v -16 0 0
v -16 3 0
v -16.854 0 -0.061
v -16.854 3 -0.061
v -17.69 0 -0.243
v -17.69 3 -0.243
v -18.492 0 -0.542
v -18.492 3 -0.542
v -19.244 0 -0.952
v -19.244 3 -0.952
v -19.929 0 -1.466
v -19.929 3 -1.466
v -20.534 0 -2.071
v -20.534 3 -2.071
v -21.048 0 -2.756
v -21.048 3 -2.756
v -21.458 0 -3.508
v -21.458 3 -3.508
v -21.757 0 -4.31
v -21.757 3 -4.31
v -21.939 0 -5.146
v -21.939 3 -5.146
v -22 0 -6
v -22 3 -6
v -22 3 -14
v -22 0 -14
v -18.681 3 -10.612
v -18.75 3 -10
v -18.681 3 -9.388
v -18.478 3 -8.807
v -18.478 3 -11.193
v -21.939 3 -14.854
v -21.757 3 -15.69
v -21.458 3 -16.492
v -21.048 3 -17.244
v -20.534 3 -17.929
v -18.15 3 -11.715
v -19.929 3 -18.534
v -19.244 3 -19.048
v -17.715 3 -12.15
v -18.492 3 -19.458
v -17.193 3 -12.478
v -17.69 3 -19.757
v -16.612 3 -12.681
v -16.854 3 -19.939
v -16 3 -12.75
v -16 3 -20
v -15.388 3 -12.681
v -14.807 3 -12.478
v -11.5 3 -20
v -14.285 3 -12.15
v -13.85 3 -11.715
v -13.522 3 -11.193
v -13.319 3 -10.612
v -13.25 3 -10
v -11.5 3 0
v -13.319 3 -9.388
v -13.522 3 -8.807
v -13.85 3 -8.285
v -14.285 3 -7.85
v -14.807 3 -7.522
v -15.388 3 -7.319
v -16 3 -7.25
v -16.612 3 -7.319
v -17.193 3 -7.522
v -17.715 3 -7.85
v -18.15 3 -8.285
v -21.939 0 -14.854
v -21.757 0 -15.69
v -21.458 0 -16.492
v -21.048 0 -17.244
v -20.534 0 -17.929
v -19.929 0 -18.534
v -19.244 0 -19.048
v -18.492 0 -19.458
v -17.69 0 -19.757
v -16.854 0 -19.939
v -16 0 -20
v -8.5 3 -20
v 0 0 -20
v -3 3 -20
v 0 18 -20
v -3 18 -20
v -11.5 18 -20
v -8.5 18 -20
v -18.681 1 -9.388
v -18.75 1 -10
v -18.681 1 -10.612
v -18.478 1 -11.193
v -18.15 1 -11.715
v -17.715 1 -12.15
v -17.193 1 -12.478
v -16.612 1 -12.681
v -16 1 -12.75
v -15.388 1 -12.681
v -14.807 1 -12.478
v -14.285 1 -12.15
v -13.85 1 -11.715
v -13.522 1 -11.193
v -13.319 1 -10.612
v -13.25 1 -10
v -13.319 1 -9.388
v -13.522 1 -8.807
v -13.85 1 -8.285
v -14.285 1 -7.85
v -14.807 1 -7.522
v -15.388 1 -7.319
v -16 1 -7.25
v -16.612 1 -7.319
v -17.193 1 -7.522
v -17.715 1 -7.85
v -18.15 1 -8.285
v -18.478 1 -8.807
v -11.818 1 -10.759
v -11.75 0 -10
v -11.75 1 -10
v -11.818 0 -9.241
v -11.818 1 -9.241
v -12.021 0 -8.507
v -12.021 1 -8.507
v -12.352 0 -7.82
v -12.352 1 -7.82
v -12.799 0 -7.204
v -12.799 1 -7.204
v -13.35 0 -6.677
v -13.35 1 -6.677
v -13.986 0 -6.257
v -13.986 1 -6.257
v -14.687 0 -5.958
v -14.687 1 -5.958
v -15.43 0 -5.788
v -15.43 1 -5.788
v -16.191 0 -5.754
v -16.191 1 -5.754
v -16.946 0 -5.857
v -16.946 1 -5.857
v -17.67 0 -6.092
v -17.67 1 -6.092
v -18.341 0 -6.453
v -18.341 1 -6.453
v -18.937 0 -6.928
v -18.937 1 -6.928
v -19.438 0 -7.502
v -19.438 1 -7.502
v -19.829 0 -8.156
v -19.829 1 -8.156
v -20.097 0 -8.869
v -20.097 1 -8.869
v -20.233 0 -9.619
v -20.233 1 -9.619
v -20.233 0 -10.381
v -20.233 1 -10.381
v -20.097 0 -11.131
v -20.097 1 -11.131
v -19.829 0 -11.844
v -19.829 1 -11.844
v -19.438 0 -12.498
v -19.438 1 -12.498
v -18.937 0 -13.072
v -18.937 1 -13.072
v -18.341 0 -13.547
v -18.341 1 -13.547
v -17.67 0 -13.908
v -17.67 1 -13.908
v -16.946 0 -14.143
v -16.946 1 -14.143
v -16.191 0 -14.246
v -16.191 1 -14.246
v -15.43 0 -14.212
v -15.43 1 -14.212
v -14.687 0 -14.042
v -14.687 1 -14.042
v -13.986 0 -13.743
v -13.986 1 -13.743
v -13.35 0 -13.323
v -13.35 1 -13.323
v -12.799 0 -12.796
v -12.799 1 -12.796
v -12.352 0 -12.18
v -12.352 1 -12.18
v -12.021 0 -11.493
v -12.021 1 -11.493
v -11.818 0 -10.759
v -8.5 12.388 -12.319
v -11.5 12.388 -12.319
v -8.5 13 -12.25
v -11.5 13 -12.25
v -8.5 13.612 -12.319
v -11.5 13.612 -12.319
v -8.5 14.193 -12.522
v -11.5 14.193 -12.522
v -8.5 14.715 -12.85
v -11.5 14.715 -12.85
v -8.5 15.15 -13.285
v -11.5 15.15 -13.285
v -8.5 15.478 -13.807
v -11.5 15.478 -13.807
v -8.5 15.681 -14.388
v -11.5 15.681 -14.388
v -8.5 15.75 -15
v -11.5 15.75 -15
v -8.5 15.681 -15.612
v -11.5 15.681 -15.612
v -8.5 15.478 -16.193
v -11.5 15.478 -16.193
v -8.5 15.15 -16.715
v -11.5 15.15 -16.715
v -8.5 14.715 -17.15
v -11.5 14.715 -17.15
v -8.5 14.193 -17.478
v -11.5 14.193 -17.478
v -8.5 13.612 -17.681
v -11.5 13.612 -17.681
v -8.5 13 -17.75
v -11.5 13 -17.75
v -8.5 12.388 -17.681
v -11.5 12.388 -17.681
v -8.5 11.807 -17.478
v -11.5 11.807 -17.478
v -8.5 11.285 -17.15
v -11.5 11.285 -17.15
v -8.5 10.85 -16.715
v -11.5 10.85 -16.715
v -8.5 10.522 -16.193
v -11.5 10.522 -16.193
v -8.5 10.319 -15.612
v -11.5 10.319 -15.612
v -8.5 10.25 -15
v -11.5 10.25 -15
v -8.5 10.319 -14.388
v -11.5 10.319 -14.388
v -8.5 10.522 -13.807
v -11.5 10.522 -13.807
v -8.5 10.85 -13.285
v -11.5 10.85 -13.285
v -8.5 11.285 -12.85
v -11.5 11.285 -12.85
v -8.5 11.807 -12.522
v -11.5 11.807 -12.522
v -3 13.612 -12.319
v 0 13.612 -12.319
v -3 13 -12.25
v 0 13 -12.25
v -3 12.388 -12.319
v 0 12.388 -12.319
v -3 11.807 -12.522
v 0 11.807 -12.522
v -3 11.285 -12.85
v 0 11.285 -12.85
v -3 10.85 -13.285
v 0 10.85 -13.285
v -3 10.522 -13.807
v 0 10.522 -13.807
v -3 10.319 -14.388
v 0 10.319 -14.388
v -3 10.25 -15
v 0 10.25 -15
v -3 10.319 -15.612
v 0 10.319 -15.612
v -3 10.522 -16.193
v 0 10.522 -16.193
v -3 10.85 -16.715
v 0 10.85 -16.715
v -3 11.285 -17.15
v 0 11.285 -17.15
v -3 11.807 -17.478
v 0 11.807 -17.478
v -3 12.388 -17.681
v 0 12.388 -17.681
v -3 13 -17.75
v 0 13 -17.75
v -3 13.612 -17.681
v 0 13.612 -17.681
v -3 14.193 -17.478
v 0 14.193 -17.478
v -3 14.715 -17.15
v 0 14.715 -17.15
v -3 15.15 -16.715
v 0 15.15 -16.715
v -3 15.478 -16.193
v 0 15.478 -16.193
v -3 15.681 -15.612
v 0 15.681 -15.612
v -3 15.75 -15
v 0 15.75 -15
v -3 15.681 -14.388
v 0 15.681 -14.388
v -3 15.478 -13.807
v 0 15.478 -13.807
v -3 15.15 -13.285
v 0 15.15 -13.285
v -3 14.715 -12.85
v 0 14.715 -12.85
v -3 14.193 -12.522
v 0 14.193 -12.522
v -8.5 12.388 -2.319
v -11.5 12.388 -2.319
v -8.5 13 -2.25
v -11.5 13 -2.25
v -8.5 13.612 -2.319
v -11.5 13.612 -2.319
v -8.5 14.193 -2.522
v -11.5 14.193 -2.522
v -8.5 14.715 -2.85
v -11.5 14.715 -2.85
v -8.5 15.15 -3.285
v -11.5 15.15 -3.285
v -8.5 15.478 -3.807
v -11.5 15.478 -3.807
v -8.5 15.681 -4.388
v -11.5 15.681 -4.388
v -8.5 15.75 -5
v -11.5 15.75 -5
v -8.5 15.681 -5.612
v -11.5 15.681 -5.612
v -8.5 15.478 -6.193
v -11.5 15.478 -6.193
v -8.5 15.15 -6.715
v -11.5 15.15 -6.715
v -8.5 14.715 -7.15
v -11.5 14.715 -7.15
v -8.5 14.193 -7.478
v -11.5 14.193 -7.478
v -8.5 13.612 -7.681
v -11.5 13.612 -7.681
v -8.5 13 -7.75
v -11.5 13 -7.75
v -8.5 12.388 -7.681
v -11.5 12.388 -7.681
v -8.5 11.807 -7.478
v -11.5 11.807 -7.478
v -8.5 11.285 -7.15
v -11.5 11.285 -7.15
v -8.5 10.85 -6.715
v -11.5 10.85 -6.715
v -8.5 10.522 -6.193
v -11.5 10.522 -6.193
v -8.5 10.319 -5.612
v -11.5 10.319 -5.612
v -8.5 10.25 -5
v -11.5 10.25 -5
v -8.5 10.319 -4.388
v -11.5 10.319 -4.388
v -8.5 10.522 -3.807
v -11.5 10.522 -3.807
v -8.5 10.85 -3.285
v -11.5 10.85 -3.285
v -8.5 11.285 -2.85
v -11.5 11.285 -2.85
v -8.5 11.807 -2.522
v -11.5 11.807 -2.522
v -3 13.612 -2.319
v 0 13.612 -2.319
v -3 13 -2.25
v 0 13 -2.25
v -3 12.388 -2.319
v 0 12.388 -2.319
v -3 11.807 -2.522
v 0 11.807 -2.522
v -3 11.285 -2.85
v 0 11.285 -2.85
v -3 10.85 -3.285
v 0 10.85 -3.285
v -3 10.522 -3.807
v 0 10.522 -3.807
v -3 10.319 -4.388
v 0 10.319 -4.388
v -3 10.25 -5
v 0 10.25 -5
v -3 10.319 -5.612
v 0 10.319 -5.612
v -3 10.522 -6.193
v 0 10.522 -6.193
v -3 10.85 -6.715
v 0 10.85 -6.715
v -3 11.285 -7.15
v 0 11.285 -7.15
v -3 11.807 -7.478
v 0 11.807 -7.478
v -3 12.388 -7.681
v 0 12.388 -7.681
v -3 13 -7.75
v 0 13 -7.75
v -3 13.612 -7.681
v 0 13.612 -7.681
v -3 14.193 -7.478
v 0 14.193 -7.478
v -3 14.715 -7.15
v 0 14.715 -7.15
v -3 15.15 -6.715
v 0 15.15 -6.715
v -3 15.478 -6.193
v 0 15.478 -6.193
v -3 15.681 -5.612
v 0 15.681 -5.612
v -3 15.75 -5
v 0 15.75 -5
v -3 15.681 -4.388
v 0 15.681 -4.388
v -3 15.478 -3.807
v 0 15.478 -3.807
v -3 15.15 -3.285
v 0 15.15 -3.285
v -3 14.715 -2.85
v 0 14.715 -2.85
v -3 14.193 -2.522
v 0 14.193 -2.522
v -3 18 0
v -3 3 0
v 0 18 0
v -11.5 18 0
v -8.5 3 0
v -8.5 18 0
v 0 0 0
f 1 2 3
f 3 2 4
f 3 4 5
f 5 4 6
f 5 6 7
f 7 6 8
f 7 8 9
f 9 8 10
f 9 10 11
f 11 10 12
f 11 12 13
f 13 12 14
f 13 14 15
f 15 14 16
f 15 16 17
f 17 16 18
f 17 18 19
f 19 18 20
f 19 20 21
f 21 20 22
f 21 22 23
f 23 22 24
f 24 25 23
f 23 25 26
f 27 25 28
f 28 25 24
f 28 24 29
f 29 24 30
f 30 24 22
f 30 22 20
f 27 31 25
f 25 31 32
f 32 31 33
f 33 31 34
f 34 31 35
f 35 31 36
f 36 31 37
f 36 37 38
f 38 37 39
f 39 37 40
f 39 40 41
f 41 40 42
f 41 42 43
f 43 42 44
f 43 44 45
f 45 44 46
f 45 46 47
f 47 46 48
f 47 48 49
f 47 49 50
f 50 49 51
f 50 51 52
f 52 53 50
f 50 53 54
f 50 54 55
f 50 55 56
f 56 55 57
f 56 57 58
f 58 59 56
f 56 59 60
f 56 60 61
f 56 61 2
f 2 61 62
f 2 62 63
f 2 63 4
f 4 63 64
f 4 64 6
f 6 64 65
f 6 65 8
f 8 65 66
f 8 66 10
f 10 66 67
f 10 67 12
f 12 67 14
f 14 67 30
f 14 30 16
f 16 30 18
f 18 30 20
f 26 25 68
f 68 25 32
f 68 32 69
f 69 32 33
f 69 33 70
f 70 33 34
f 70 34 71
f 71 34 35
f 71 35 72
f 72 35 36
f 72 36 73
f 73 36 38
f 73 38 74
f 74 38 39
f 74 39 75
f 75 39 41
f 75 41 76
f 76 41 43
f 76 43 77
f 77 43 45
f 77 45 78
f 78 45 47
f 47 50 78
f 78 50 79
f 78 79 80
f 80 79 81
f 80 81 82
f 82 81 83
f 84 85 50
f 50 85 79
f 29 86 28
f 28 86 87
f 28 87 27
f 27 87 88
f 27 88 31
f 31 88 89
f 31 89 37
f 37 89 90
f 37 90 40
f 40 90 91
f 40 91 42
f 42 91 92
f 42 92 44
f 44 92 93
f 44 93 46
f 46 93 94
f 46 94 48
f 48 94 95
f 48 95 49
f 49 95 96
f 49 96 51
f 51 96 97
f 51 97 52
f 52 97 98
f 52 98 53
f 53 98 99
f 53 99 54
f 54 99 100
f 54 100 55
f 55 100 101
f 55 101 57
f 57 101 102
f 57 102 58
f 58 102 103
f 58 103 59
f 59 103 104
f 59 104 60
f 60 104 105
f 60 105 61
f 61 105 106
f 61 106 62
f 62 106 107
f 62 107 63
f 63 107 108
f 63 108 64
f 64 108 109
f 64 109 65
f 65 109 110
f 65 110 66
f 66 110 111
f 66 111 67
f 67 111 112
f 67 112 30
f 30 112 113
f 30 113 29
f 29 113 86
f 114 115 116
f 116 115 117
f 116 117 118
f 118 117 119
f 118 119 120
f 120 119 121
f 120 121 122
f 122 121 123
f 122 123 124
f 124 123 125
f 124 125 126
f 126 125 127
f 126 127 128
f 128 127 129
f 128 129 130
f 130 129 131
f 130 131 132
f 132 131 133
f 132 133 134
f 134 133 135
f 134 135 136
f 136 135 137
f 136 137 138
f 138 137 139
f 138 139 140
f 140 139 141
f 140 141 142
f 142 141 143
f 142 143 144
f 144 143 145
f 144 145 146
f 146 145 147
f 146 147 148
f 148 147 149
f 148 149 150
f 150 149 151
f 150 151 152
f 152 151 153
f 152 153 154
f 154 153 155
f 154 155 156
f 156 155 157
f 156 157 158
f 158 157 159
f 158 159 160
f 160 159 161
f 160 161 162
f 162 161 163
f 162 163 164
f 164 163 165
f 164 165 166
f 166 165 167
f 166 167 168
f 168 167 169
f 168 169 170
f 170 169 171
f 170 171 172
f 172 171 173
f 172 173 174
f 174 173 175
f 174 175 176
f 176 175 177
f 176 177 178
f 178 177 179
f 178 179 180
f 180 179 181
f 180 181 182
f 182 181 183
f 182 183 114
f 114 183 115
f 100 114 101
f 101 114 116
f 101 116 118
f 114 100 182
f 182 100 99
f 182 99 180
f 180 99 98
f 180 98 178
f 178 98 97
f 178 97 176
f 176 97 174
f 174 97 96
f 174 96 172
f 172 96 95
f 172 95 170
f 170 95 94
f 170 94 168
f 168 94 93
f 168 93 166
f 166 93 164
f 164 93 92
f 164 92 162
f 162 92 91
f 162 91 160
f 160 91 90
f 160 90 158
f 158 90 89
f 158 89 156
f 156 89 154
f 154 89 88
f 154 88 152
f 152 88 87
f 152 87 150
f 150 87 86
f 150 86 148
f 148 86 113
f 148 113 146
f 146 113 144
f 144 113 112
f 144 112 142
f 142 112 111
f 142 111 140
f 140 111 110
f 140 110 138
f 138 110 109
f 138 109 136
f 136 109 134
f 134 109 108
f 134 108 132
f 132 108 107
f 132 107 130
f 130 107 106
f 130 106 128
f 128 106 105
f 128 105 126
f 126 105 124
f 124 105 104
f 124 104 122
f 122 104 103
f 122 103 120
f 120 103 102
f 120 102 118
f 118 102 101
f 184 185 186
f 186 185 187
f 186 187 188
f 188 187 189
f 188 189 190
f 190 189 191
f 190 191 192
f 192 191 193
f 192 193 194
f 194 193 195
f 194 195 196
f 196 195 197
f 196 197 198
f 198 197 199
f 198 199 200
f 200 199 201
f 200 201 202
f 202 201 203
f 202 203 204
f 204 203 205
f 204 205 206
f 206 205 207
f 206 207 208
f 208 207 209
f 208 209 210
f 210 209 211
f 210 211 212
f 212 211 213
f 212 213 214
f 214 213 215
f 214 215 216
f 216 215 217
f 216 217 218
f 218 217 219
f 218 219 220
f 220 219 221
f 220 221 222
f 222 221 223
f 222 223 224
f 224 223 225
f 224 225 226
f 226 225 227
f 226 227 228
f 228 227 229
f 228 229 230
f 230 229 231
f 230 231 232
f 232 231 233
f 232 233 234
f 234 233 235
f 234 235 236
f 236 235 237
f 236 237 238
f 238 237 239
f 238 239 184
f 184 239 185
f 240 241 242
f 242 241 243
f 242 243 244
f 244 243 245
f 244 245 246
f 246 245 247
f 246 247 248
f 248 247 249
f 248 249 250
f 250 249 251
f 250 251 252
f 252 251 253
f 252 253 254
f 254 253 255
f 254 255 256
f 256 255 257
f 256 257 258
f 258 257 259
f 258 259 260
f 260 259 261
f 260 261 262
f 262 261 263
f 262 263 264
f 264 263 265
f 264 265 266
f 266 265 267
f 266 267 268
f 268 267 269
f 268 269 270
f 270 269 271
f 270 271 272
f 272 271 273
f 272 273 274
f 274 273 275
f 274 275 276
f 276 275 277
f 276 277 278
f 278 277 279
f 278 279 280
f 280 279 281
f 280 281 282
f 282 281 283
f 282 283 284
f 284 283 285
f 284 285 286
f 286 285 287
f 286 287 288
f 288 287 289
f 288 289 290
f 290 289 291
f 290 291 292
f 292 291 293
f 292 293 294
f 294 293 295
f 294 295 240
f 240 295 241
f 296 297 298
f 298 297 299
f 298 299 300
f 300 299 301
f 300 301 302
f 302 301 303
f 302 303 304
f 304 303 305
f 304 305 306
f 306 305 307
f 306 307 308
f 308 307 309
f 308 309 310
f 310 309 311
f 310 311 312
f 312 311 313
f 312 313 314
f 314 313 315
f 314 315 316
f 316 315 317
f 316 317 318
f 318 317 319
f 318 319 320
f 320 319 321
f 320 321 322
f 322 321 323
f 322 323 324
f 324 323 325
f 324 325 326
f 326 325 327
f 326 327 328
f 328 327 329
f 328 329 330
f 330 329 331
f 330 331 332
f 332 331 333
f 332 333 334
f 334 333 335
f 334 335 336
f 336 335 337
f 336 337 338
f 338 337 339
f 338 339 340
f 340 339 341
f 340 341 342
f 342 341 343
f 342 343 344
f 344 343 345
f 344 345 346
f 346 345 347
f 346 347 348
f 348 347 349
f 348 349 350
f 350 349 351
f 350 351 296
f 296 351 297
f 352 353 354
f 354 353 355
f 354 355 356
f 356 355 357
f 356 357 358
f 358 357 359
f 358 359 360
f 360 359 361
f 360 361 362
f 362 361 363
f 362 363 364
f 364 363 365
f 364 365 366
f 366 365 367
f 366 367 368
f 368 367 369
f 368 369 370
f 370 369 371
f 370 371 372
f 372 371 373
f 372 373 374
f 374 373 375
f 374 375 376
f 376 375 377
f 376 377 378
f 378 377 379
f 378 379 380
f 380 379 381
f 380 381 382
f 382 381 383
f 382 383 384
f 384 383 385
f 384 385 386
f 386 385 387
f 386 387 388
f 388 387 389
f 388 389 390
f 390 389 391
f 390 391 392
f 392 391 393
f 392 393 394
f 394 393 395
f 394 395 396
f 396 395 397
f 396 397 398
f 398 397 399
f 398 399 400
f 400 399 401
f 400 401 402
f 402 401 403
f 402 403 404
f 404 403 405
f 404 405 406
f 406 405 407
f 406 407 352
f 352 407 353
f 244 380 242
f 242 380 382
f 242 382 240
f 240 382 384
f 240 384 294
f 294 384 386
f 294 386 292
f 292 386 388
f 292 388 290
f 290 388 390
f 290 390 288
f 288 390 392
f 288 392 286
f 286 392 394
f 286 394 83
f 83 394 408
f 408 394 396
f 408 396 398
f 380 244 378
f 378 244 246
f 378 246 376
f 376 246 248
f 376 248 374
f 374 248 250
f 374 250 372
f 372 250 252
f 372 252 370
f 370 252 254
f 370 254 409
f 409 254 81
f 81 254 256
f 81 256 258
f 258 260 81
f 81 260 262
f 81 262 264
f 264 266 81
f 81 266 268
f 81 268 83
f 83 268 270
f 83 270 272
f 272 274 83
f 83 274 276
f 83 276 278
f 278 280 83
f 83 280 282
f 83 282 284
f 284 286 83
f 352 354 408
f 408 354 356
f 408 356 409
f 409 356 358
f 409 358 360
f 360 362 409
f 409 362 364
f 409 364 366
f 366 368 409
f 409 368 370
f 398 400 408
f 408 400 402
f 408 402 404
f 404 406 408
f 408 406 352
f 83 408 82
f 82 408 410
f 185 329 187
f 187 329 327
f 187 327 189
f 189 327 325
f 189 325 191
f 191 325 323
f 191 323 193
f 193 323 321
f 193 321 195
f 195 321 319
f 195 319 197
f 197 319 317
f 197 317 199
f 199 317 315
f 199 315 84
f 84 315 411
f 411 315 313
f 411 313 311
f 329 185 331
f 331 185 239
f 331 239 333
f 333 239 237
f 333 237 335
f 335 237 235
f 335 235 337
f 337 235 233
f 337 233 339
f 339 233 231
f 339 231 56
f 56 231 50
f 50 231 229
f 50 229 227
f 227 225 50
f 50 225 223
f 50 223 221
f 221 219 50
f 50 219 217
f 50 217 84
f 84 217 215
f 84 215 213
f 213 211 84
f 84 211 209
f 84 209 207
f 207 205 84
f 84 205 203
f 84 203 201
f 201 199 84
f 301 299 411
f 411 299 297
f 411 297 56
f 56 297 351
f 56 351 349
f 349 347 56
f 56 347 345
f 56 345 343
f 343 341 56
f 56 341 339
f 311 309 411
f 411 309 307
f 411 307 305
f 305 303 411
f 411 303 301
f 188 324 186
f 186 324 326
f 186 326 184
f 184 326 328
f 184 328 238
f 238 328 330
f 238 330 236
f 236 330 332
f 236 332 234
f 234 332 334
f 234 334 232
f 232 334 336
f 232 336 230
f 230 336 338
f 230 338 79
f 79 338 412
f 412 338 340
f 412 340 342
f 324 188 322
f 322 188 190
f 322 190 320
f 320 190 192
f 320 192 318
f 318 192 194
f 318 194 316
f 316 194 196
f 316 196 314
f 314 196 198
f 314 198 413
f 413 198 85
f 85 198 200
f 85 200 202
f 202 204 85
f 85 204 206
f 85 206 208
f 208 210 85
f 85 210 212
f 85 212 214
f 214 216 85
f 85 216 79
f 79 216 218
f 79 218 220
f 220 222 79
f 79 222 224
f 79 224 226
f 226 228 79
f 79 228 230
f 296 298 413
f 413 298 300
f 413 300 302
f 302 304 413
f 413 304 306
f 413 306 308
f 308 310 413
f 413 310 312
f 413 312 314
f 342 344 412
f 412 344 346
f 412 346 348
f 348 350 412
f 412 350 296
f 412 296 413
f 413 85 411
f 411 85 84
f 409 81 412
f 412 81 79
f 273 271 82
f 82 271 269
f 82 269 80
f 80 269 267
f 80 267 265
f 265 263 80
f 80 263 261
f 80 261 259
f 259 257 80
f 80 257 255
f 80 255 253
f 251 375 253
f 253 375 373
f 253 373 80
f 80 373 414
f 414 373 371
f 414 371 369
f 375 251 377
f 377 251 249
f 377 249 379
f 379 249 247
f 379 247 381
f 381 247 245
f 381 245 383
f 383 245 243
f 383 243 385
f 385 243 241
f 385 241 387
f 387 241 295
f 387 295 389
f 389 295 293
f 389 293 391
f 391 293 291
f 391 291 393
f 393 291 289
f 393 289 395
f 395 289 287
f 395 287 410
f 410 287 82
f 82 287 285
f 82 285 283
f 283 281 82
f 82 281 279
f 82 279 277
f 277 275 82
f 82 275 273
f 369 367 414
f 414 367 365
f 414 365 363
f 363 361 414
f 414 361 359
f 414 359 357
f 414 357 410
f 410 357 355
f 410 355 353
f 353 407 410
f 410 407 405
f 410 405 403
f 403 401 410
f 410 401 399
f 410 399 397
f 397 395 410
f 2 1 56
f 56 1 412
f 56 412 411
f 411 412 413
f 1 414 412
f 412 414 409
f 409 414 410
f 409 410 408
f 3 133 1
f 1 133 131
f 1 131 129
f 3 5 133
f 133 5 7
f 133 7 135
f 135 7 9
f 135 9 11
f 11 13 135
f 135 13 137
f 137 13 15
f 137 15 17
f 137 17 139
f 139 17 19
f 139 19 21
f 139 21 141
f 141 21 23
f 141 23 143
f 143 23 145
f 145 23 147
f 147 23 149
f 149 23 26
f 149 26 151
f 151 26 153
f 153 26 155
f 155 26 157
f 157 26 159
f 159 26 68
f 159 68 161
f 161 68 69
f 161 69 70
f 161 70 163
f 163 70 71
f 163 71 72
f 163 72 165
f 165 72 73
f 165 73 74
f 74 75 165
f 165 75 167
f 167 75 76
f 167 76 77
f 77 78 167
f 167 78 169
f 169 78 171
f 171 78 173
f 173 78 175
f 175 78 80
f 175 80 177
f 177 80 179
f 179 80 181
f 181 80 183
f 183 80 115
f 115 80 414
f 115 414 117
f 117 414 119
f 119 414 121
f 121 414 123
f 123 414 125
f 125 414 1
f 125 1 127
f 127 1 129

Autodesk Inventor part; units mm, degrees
ref_plane "YZ Plane" through (0, 0, 0) normal (1, 0, 0) x (0, 1, 0)
ref_plane "XZ Plane" through (0, 0, 0) normal (0, 1, 0) x (-1, 0, 0)
ref_plane "XY Plane" through (0, 0, 0) normal (0, 0, 1) x (1, 0, 0)
sketch "Sketch1" plane through (0, 0, 0) normal (0, 1, 0) x (-1, 0, 0)
  line L0 (0, 0) -> (22, 0)
  line L1 (22, 0) -> (22, -20)
  line L2 (22, -20) -> (0, -20)
  line L3 (0, -20) -> (0, 0)
  dimension "d2" = 20
  dimension "d3" = 22
extrude "Extrusion1" add sketch "Sketch1" along normal blind 3
sketch "Sketch3" plane through (0, 3, 0) normal (0, 1, 0) x (1, 0, 0)
  line L0 (0, 0) -> (-3, 0)
  line L1 (-3, 0) -> (-3, 20)
  line L2 (-3, 20) -> (0, 20)
  line L3 (0, 20) -> (0, 0)
  line L4 (-22, 0) -> (0, 0) projected
  line L5 (0, 20) -> (-22, 20) projected
  line L6 (-11.5, 0) -> (-8.5, 0)
  line L7 (-8.5, 0) -> (-8.5, 20)
  line L8 (-8.5, 20) -> (-11.5, 20)
  line L9 (-11.5, 20) -> (-11.5, 0)
  dimension "d8" = 3
  dimension "d25" = 3
  dimension "d26" = 5.5
extrude "Extrusion2" add sketch "Sketch3" along normal blind 15 contours L0 L1 L2 L3 | L4 L9 L5 L7
sketch "Sketch4" plane through (0, 0, 0) normal (1, 0, 0) x (0, 0, -1)
  line L0 (0, 3) -> (0, 18) projected
  line L1 (0, 13) -> (20.043, 13)
  line L2 (0, 18) -> (20, 18) projected
  circle A0 centre (5, 13) radius 2.75
  circle A1 centre (15, 13) radius 2.75
  line L3 (20, 0) -> (20, 18) projected
  point P0 (0, 0)
  dimension "d11" = 5
  dimension "d12" = 10
  dimension "d13" = 5.5
  dimension "d14" = 5.5
  dimension "d15" = 5
extrude "Extrusion3" cut sketch "Sketch4" against normal blind 29.25 contours A0 L1 | L1 A0 | A1 L1 | L1 A1
sketch "Sketch5" plane through (0, 0, 0) normal (0, -1, 0) x (1, 0, 0)
  line L0 (-22, 0) -> (0, 0) projected
  line L1 (-16, 0) -> (-16, -20)
  line L2 (0, -20) -> (-22, -20) projected
  line L3 (-22, -20) -> (-22, 0) projected
  circle A0 centre (-16, -10) radius 4.25
  dimension "d18" = 6
  dimension "d19" = 8.5
  dimension "d27" = 10
extrude "Extrusion4" cut sketch "Sketch5" against normal blind 1 contours A0 L1 | L1 A0
sketch "Sketch6" plane through (-16, 1, -10) normal (0, -1, 0) x (1, 0, 0)
  circle A0 centre (0, 0) radius 2.75
  point P0 (16, 10)
  dimension "d22" = 5.5
extrude "Extrusion5" cut sketch "Sketch6" against normal blind 9
fillet "Fillet1" radius 6 2 edges at (-22, 1.5, -20) (-22, 1.5, 0)
properties part number "XY_Zfixer" material "Thermoplastic Resin"
